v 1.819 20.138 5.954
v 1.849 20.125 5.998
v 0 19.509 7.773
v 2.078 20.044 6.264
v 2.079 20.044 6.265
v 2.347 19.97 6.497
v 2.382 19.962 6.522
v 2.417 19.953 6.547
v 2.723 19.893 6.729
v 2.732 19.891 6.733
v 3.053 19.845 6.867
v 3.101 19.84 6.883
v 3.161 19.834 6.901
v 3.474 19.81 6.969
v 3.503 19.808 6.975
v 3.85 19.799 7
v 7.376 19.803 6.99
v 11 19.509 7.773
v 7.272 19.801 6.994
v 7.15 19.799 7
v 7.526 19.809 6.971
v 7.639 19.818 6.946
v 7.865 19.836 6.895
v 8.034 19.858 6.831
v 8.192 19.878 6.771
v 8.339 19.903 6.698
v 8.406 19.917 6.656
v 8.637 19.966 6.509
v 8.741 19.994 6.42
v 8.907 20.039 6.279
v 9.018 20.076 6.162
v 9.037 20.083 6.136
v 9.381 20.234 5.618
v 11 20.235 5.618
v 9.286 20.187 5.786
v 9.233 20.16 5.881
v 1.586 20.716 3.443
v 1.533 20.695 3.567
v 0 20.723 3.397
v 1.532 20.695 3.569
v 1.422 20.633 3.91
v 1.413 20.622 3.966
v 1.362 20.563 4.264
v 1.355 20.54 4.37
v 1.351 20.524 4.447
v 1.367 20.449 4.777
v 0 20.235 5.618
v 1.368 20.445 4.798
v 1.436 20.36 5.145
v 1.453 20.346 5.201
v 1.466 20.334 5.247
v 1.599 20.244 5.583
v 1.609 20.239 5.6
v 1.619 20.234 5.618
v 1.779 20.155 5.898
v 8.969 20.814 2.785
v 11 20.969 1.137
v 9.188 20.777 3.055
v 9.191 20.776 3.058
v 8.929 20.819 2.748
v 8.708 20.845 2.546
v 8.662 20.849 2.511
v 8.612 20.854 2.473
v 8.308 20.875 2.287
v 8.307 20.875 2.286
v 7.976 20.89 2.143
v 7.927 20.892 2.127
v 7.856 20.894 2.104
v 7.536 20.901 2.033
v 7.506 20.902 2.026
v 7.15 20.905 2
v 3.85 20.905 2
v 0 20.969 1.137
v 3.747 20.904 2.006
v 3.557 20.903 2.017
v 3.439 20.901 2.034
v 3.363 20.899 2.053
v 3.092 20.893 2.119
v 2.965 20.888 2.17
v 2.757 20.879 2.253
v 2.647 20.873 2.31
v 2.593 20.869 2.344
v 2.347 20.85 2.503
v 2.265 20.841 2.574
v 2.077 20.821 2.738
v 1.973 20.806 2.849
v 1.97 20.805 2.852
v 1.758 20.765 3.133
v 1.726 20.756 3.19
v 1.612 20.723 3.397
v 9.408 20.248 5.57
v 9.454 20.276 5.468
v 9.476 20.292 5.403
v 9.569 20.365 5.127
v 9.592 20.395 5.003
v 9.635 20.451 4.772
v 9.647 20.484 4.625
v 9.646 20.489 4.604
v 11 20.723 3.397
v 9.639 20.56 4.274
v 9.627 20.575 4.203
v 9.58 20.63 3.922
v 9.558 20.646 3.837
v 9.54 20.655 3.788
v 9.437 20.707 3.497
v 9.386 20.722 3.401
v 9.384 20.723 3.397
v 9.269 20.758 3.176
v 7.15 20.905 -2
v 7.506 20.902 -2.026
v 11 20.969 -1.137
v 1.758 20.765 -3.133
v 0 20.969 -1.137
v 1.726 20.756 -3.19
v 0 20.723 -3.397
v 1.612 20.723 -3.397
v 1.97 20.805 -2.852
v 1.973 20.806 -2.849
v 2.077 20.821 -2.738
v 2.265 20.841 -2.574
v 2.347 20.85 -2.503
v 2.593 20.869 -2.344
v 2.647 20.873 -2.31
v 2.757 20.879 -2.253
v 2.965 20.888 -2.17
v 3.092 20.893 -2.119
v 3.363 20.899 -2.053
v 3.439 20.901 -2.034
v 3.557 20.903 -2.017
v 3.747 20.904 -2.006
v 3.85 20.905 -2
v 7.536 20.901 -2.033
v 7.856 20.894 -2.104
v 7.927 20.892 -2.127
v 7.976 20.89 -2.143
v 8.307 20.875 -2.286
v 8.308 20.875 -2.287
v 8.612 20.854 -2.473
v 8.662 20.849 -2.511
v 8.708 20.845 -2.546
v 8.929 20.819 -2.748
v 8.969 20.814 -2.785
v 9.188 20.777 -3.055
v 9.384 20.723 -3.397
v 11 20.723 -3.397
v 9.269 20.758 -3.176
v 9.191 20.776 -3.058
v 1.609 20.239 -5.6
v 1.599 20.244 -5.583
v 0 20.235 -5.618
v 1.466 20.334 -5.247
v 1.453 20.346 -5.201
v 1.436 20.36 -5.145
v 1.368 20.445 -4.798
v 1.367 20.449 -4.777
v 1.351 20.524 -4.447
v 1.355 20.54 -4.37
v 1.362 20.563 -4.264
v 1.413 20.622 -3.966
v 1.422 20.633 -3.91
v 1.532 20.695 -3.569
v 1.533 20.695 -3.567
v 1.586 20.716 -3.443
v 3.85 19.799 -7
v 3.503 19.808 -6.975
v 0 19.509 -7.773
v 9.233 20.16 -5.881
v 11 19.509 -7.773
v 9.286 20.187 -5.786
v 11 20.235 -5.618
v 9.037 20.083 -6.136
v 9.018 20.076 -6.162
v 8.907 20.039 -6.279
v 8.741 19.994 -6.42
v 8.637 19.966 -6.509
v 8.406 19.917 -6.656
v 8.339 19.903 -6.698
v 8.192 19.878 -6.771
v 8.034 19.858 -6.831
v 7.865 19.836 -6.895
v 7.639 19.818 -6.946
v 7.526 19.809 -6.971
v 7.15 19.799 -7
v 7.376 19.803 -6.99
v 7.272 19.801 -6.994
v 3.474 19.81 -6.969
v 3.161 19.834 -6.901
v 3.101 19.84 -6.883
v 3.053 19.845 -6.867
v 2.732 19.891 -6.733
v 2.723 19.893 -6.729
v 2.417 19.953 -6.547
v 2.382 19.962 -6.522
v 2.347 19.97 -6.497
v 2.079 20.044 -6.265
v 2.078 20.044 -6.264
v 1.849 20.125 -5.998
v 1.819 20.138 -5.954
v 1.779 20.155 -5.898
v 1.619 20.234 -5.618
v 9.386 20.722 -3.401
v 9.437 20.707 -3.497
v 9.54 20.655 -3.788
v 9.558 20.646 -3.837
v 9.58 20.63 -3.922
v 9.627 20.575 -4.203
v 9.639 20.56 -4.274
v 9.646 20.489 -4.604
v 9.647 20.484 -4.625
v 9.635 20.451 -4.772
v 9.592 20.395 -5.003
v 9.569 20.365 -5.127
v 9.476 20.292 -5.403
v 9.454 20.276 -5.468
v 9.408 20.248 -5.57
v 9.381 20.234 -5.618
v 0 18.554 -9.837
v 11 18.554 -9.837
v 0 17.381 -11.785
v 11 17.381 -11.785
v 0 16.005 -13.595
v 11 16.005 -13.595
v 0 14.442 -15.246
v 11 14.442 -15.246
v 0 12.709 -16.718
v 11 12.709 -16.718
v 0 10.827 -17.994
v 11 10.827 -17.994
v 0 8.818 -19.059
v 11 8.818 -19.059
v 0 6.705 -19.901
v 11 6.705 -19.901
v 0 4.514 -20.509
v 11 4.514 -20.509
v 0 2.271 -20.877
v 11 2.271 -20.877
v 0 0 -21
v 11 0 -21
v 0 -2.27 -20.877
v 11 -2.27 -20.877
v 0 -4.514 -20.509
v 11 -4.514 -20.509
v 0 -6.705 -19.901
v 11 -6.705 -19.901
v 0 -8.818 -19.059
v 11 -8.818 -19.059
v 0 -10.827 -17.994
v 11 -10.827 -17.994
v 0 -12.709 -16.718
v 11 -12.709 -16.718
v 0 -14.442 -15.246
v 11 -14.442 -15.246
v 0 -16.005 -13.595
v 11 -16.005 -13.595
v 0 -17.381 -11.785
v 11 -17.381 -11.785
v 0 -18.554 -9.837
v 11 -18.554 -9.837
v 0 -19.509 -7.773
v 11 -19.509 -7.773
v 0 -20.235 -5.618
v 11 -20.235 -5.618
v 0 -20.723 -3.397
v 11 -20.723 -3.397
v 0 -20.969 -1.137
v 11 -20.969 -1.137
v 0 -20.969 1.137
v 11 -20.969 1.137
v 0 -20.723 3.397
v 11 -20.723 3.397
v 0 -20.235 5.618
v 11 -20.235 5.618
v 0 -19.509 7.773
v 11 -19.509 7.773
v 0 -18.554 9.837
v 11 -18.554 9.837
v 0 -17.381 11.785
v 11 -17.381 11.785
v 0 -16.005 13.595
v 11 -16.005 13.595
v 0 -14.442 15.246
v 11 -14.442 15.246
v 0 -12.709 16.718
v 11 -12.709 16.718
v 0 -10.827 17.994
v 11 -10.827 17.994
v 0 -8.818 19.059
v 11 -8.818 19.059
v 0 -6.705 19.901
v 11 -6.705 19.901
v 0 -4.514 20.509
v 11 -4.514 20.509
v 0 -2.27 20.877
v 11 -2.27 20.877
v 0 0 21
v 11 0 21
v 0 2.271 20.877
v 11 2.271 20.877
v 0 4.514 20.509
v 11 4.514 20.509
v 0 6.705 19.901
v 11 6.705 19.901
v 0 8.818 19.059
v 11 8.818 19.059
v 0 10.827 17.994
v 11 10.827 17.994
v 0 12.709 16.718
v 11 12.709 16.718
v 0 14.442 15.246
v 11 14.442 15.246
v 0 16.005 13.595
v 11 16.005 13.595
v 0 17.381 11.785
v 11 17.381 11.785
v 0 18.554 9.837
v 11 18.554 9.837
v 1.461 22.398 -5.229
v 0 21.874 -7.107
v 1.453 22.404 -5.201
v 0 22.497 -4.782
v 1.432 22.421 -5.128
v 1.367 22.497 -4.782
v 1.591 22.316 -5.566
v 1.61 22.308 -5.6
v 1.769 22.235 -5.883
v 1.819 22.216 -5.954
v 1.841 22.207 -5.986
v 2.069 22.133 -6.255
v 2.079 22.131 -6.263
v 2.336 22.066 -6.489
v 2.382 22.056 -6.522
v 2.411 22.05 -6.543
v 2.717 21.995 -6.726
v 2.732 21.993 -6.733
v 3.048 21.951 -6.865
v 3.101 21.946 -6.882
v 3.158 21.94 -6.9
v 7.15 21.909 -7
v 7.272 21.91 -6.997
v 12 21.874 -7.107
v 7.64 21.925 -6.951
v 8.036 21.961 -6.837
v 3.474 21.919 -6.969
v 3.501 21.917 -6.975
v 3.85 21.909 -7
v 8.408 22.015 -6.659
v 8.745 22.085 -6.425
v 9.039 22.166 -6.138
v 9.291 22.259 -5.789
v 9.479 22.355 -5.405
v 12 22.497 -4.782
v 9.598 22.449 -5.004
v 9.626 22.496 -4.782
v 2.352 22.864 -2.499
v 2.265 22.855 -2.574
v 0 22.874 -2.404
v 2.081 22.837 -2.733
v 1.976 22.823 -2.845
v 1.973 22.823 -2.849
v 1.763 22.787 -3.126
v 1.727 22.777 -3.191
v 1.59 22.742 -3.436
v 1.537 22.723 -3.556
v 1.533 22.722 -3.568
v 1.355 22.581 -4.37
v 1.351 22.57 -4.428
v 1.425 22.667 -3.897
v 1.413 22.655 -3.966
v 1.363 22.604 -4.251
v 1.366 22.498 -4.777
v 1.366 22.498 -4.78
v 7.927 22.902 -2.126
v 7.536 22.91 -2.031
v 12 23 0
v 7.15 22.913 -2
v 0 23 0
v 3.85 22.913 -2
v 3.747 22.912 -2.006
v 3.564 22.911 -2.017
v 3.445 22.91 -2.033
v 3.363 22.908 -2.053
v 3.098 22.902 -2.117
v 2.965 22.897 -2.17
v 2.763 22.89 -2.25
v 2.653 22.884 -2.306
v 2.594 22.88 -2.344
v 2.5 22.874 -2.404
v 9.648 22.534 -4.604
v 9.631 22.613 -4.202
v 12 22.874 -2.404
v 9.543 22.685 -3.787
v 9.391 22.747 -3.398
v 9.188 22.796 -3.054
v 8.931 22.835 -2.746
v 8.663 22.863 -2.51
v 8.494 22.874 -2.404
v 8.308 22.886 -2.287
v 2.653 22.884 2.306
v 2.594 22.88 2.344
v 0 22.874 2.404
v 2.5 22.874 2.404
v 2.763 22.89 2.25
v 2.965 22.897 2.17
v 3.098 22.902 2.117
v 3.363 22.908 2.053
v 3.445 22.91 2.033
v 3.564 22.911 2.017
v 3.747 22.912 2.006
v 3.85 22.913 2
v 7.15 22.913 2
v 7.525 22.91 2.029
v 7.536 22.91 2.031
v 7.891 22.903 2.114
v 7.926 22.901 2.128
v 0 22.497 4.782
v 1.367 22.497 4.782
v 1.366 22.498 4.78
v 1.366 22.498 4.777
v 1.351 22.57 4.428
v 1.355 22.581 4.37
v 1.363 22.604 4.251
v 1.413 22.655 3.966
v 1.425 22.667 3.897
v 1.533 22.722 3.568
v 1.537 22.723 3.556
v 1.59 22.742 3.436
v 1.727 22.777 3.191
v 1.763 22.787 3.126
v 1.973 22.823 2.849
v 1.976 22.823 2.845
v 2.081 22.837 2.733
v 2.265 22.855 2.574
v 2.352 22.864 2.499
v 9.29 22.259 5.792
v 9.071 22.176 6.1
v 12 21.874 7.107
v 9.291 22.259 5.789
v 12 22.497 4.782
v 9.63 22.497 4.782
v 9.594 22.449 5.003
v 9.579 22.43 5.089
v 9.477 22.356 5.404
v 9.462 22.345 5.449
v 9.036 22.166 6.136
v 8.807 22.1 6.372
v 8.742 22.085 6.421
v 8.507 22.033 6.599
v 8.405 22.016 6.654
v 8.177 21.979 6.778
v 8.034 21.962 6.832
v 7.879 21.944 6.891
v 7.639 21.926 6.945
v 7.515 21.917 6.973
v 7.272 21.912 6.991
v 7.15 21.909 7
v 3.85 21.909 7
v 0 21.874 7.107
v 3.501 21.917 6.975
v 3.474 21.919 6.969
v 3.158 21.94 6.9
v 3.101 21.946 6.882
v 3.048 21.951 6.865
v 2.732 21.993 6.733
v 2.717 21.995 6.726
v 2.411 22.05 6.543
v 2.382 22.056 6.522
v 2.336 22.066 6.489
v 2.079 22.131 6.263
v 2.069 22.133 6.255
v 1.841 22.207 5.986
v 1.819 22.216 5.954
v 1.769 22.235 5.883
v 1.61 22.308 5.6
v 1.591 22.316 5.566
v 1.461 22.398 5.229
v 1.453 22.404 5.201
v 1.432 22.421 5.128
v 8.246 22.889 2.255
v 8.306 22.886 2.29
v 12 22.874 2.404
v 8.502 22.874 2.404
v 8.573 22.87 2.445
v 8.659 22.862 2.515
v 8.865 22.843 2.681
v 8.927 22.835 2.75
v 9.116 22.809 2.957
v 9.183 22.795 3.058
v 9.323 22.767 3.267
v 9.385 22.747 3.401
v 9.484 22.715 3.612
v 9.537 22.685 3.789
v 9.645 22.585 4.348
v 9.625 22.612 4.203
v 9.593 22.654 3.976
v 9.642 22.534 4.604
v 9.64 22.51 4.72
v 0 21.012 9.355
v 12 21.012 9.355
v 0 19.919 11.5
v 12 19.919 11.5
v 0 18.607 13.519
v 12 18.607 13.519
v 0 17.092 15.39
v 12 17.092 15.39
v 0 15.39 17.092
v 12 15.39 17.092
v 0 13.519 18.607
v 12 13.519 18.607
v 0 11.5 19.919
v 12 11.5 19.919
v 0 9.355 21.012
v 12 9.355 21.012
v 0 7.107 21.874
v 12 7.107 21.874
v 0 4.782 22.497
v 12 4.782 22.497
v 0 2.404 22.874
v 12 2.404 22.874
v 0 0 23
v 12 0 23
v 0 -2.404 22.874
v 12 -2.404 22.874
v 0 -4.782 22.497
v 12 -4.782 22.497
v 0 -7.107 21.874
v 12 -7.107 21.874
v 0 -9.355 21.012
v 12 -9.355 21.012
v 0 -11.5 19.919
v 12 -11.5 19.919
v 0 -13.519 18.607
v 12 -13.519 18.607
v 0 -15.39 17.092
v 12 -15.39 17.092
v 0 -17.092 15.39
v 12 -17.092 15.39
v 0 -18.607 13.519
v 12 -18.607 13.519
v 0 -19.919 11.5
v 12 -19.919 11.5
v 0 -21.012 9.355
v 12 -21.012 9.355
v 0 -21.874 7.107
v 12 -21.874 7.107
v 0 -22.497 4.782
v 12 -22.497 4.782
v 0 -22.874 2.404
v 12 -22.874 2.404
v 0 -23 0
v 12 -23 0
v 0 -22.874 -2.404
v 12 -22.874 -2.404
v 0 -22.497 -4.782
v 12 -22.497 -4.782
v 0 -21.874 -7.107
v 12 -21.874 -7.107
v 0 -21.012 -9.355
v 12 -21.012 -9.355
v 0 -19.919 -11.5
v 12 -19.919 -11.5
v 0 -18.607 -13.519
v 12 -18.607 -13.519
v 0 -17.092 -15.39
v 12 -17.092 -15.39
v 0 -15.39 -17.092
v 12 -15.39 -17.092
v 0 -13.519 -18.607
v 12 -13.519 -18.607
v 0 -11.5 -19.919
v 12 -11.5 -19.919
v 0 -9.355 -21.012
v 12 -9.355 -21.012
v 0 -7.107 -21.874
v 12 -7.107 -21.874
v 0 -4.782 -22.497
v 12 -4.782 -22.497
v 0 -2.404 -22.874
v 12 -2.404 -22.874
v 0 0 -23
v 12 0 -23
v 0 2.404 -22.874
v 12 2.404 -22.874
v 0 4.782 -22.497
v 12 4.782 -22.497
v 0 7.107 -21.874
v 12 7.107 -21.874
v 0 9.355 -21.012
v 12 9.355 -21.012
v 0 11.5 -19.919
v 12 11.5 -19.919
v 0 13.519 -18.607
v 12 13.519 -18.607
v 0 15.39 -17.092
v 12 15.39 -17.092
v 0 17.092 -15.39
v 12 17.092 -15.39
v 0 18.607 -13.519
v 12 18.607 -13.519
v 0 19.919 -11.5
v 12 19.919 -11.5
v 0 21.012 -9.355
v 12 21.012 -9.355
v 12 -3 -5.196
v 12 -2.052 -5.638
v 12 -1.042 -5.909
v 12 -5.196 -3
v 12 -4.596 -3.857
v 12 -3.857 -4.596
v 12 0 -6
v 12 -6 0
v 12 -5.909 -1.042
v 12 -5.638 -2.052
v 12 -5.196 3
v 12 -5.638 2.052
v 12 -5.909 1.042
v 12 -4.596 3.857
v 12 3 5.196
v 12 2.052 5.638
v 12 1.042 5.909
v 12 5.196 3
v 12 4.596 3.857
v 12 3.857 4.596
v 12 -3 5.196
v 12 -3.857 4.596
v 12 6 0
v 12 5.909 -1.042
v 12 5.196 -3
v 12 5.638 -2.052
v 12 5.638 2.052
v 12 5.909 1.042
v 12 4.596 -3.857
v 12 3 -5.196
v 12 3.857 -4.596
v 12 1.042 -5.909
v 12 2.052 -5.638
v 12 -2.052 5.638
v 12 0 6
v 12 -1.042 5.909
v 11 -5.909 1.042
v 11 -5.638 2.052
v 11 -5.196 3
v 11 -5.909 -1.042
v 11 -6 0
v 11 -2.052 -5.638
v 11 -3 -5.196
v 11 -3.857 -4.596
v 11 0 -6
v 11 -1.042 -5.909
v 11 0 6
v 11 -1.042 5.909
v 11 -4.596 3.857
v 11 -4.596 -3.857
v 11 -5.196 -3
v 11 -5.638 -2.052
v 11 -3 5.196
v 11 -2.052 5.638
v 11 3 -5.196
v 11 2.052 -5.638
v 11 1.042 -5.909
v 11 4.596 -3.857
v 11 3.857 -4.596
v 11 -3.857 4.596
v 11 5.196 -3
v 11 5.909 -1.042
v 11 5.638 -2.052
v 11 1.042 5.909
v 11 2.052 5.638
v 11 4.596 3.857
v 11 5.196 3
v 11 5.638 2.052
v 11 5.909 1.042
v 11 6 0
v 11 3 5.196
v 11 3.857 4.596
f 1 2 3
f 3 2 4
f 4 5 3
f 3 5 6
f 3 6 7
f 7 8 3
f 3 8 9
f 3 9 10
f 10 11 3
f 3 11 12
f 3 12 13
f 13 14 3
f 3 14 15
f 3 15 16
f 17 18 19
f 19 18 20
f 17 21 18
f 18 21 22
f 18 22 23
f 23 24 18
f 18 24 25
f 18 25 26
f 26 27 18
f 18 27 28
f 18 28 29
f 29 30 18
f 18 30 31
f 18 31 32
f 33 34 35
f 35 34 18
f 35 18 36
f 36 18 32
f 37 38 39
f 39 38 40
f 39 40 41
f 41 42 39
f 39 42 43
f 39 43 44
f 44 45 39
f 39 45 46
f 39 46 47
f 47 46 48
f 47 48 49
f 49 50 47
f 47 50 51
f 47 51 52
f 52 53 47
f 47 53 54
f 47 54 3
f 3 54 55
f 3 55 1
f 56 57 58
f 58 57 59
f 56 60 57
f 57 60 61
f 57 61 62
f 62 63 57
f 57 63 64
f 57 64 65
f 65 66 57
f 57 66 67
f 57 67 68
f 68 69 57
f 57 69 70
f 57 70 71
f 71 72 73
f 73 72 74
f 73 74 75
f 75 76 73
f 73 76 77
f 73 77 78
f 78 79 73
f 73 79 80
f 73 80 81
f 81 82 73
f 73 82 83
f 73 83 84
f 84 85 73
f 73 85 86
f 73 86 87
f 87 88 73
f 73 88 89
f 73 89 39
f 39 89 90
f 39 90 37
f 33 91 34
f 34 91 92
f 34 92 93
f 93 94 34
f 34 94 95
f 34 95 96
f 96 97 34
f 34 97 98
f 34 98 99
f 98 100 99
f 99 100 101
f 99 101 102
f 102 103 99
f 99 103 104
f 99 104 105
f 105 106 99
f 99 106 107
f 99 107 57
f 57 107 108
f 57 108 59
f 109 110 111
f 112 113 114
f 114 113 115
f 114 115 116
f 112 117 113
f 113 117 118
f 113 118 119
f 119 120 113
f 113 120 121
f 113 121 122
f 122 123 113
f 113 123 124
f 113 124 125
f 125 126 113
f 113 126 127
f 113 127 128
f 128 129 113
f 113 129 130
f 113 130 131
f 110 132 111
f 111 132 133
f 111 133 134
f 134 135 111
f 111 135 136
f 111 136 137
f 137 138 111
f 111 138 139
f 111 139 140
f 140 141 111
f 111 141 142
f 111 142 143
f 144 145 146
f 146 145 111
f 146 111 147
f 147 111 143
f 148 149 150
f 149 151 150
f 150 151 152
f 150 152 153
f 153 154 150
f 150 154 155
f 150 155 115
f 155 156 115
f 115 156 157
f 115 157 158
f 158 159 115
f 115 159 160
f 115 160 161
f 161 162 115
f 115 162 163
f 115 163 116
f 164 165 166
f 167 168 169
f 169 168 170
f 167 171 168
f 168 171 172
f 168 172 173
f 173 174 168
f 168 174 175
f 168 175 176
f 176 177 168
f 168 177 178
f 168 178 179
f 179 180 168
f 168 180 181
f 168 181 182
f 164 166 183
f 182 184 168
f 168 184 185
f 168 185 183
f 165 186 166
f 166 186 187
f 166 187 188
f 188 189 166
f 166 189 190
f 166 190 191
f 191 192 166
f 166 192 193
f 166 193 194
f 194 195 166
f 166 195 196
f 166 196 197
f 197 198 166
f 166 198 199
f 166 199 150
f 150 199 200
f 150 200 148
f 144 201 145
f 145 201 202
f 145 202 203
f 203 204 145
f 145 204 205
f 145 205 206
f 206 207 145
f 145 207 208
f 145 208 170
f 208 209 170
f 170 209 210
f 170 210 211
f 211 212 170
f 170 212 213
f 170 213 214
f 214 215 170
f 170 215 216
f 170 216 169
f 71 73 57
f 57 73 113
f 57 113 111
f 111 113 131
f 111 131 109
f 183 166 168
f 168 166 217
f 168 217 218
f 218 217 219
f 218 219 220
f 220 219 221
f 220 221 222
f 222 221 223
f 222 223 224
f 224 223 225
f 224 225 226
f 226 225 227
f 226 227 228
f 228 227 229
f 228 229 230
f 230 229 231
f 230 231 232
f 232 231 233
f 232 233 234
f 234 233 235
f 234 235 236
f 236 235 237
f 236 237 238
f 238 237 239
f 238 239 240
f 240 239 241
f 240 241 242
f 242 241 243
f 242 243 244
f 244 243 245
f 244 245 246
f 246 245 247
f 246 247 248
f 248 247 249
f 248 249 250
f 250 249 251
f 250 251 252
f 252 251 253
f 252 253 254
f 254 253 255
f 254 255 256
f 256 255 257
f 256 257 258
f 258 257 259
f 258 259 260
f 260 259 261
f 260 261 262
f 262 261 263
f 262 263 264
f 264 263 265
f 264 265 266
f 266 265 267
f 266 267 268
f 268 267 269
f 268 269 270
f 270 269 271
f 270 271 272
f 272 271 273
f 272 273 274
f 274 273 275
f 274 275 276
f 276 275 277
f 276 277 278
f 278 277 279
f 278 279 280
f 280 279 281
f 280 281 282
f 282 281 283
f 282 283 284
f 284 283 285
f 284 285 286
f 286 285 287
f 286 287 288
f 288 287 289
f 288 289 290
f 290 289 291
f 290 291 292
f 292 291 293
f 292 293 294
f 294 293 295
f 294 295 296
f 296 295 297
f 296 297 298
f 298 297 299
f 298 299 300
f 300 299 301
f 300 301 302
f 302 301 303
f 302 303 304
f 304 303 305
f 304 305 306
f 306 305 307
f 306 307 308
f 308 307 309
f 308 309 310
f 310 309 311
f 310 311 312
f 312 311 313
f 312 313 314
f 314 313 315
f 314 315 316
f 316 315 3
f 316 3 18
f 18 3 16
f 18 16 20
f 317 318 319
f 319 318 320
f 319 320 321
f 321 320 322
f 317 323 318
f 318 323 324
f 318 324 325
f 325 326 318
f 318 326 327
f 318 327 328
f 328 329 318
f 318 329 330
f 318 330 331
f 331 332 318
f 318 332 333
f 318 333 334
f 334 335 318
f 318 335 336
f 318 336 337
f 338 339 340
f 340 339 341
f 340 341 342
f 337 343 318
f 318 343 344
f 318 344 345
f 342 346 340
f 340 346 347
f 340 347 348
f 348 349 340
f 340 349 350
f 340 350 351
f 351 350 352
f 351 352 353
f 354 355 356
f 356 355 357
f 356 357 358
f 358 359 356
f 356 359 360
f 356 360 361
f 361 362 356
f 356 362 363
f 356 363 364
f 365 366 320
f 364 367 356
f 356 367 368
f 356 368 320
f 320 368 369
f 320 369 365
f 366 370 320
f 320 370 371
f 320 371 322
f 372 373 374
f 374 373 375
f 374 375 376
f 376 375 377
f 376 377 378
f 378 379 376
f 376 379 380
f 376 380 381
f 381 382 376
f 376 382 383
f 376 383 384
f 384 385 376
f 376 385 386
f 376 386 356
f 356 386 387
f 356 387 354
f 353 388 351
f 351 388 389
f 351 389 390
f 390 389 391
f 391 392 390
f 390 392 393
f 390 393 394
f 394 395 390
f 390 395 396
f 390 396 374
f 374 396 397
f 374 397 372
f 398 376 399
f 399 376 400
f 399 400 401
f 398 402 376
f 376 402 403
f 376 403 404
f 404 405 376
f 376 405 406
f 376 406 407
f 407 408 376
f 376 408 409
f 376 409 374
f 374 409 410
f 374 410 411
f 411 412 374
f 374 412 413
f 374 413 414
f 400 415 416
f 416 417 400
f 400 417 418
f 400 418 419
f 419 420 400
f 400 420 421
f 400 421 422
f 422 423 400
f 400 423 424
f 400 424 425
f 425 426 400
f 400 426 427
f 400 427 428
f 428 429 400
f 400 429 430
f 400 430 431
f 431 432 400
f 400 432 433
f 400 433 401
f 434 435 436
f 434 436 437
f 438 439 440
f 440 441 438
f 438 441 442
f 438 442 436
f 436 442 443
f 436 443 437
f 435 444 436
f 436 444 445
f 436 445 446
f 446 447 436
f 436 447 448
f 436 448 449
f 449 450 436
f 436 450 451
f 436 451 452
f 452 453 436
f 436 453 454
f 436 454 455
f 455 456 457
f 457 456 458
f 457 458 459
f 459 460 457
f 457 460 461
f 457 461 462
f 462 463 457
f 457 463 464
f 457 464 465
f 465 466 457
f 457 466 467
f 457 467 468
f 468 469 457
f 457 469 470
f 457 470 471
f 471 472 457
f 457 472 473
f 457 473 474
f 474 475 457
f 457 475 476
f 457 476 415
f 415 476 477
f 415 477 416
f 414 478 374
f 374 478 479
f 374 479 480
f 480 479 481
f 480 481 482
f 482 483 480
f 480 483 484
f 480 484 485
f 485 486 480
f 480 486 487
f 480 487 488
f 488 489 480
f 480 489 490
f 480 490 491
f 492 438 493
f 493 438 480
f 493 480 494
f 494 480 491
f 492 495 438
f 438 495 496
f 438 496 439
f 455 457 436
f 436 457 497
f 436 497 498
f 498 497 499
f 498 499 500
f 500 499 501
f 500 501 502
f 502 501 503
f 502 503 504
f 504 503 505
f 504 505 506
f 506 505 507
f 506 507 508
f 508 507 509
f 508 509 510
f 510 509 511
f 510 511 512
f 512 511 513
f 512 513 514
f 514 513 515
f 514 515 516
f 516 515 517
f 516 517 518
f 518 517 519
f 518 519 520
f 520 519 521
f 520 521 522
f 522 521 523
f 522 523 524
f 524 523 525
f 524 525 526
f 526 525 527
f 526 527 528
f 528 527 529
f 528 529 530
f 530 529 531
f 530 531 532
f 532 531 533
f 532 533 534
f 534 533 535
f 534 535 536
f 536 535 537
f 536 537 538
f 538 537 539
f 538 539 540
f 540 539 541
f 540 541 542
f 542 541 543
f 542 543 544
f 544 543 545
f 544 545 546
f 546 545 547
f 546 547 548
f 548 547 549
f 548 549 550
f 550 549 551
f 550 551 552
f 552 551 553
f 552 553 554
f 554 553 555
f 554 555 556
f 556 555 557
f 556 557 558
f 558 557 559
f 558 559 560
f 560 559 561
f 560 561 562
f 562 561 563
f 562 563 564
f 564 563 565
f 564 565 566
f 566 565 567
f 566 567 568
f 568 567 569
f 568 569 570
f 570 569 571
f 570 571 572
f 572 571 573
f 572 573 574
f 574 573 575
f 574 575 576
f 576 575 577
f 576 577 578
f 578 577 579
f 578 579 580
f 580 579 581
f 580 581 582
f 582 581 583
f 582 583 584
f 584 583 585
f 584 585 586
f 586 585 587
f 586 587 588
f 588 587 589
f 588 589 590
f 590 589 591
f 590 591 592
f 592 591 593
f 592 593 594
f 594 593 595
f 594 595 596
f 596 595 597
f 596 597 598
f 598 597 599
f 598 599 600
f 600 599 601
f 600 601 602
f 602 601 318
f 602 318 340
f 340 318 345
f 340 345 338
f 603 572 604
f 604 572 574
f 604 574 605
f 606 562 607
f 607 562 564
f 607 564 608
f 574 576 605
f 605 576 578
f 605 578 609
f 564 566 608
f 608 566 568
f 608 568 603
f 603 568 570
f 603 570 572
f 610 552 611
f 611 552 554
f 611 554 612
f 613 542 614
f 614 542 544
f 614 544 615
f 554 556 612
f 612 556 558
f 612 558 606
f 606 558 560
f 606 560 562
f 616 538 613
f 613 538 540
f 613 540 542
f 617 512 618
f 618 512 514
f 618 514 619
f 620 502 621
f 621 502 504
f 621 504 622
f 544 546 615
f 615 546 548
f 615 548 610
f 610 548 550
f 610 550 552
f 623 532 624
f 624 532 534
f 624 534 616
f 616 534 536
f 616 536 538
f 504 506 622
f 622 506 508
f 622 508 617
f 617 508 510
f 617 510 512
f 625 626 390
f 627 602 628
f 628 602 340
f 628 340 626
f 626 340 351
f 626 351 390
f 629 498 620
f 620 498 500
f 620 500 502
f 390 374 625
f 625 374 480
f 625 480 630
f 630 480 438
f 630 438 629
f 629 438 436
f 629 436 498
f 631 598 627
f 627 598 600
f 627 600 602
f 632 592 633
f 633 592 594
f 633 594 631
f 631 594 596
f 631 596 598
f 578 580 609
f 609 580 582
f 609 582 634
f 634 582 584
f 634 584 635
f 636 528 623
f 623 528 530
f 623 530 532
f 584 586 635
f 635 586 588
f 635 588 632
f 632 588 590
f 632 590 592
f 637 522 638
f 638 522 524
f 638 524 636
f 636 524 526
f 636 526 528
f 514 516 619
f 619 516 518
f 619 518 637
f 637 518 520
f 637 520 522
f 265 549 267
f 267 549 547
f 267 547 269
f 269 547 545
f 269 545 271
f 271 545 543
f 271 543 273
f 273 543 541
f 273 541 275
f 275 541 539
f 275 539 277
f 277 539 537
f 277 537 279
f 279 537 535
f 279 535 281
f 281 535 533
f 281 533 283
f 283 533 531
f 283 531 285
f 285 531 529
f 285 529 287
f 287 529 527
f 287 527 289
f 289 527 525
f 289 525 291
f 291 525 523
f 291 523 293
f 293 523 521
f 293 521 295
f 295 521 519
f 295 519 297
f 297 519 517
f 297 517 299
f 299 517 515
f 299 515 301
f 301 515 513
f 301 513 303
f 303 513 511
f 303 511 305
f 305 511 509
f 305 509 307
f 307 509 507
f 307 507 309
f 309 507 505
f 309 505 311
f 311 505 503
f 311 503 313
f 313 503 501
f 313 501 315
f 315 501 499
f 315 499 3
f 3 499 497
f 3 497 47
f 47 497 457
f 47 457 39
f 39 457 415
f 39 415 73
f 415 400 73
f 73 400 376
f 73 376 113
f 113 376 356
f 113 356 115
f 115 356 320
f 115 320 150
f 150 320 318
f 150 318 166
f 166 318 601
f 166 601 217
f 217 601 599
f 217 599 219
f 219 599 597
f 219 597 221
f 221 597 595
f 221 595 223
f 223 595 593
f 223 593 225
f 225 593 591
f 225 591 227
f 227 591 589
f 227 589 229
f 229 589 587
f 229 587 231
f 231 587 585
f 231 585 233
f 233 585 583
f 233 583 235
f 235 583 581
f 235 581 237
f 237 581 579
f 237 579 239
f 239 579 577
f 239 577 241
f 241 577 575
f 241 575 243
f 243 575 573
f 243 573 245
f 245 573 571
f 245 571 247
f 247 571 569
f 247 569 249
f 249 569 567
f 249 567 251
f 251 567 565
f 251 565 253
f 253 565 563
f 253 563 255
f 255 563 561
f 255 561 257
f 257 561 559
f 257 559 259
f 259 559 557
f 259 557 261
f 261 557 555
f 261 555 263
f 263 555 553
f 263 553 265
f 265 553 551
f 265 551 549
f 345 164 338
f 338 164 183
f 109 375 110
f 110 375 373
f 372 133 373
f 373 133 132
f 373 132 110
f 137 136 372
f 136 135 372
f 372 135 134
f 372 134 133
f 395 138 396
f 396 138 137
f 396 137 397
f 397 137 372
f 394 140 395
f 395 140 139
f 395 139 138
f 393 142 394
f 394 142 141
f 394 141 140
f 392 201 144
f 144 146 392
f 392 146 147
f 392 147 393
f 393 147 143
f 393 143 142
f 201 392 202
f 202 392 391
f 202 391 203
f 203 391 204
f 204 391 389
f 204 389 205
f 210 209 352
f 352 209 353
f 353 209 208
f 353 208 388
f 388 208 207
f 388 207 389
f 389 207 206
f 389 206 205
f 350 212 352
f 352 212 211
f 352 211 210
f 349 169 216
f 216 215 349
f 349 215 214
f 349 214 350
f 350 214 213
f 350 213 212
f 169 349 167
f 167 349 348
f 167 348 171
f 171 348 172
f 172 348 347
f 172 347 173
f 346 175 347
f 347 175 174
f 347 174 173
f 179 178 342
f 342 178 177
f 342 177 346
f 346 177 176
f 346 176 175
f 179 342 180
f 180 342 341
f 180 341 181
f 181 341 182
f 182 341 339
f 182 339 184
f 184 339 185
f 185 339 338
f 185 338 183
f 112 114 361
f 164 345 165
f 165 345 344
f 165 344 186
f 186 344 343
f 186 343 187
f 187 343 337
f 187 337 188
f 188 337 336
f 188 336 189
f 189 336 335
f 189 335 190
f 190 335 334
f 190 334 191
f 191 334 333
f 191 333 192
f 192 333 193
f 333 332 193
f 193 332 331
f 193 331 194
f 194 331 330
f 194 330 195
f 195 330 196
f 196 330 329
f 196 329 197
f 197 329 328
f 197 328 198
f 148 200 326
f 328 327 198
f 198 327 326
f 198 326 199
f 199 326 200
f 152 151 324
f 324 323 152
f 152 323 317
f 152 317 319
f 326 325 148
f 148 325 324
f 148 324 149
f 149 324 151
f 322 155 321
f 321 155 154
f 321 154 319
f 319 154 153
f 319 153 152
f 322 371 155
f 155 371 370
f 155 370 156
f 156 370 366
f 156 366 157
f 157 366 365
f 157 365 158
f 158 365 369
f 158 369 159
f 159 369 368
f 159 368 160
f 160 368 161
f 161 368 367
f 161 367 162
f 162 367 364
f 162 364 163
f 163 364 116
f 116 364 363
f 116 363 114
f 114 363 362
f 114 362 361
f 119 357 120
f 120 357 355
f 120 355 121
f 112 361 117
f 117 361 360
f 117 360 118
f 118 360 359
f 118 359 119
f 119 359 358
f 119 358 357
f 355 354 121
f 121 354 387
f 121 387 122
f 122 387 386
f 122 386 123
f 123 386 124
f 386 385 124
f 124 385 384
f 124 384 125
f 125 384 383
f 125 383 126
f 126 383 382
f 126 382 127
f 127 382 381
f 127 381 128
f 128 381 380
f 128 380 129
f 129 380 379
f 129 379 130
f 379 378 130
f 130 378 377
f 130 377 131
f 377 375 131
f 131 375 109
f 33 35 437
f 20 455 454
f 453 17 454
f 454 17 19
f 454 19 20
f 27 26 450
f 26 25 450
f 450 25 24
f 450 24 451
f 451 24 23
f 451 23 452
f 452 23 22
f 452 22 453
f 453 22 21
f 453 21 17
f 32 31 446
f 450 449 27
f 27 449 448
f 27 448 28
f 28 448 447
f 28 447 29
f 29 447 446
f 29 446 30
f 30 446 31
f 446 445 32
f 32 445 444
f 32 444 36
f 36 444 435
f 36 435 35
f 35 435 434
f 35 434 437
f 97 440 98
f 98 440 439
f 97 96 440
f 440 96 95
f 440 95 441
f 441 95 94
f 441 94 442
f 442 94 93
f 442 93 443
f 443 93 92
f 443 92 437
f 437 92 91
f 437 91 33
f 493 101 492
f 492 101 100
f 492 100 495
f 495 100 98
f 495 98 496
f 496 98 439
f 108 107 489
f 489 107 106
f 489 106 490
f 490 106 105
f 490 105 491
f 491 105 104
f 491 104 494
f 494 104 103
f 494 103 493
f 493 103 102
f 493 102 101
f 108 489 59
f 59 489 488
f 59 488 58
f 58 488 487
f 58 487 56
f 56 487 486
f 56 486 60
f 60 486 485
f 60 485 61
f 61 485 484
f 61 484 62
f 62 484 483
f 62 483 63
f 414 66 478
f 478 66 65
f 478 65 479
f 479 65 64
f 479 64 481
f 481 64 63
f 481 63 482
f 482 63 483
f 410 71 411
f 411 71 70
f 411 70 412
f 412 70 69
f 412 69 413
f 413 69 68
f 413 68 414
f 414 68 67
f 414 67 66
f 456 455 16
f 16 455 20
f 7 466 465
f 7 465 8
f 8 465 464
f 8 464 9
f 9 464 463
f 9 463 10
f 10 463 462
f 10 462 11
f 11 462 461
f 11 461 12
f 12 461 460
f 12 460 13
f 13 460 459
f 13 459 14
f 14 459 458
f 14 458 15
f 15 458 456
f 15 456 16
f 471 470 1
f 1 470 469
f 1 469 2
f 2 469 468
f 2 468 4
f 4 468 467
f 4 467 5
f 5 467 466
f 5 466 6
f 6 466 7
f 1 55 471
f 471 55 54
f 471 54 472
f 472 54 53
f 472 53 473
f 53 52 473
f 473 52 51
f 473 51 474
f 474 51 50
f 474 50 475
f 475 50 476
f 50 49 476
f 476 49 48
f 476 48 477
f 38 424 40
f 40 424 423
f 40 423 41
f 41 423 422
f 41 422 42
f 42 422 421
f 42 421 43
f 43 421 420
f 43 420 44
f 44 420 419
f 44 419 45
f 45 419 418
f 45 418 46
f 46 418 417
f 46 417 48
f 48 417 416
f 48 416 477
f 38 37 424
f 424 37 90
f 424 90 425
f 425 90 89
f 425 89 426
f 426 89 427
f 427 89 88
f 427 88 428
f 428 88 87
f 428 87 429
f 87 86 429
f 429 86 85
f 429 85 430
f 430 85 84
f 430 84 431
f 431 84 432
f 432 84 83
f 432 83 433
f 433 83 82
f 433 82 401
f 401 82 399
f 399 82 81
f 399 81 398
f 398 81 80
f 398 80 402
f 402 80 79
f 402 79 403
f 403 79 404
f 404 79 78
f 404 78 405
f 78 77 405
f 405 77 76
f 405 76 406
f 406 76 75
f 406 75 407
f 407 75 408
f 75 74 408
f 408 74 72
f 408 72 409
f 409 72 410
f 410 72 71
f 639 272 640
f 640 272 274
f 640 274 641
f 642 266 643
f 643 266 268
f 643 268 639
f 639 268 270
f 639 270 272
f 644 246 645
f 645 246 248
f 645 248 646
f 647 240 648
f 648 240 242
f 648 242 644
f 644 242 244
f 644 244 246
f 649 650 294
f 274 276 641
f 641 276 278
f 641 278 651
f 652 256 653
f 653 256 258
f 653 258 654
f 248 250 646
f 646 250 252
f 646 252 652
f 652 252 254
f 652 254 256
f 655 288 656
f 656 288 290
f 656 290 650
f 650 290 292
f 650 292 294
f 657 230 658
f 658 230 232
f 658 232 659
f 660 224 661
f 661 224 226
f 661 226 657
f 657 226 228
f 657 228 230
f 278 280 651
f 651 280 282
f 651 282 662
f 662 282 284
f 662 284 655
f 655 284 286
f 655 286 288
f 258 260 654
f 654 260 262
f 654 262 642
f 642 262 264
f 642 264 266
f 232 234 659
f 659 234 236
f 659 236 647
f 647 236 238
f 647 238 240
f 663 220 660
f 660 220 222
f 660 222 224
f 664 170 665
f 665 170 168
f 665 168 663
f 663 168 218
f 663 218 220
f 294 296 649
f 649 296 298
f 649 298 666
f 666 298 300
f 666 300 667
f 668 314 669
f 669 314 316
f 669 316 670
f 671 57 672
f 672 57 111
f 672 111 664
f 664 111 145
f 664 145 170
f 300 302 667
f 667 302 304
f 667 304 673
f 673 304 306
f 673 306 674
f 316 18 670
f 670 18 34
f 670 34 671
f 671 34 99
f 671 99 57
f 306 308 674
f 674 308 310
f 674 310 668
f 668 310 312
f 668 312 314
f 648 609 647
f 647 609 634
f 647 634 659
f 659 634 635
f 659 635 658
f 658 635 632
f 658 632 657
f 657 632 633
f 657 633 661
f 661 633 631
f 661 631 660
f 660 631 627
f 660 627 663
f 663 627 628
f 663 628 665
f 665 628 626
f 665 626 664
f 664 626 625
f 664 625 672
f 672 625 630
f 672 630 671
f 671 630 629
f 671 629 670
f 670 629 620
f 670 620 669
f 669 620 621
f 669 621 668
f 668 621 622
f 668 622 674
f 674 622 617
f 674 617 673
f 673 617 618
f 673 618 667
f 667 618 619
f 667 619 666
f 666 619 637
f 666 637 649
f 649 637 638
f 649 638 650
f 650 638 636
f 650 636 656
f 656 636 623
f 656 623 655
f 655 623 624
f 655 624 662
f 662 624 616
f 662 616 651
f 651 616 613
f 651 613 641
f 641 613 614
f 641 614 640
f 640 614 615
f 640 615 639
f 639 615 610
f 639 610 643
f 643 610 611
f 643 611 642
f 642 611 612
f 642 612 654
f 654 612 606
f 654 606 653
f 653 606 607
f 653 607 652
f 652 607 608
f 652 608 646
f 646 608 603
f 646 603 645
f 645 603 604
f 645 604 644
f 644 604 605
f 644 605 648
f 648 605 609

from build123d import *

# Parameters (mm, degrees)
SKETCH1_R           = 23
SKETCH1_R_2         = 21
BOSS_EXTRUDE1_DEPTH = 12
CUT_EXTRUDE1_START  = 19.798989767
CUT_EXTRUDE1_DEPTH  = 3.113888708
BOSS_EXTRUDE2_START = -1
SKETCH3_R           = 21
SKETCH3_R_2         = 6
BOSS_EXTRUDE2_DEPTH = 1


# Read off the part's stored shape, not the designer's step: Cut-Extrude1
with BuildPart() as part:
    # Sketch1 → Boss-Extrude1 (new body)
    with BuildSketch(Plane(origin=(0, 0, 0), x_dir=(0, 0, -1), z_dir=(1, 0, 0))):
        Circle(SKETCH1_R)
        Circle(SKETCH1_R_2, mode=Mode.SUBTRACT)
    extrude(amount=BOSS_EXTRUDE1_DEPTH)

    # Cut-Extrude1 outline → Cut-Extrude1 (cut)
    with BuildSketch(Plane(origin=(0, 0, 0), x_dir=(1, 0, 0), z_dir=(0, 1, 0)).offset(CUT_EXTRUDE1_START)):
        with BuildLine():
            Line((3.85, 2), (7.15, 2))
            add(Edge.make_bspline(
                [(7.15, 2), (7.817845854, 2), (8.470708827, 2.278069652), (9.392173726, 3.213958296), (9.654566139, 3.870579279), (9.645305955, 5.165184319), (9.383600306, 5.79959696), (8.460809694, 6.727038511), (7.818179406, 7), (7.15, 7)],
                knots=[0, 0, 0, 0, 0.25, 0.25, 0.5, 0.5, 0.75, 0.75, 1, 1, 1, 1], degree=3))
            Line((7.15, 7), (3.85, 7))
            add(Edge.make_bspline(
                [(3.85, 7), (3.181977083, 7), (2.533951966, 6.72160004), (1.622306662, 5.805707302), (1.355260445, 5.166655745), (1.344899993, 3.873398622), (1.601104231, 3.221423625), (2.533655688, 2.273000364), (3.182229779, 2), (3.85, 2)],
                knots=[0, 0, 0, 0, 0.25, 0.25, 0.5, 0.5, 0.75, 0.75, 1, 1, 1, 1], degree=3))
        make_face()
        with BuildLine():
            add(Edge.make_bspline(
                [(7.15, -2), (7.817845854, -2), (8.470708827, -2.278069652), (9.392173726, -3.213958296), (9.654566139, -3.870579279), (9.645305955, -5.165184319), (9.383600306, -5.79959696), (8.460809694, -6.727038511), (7.818179406, -7), (7.15, -7)],
                knots=[0, 0, 0, 0, 0.25, 0.25, 0.5, 0.5, 0.75, 0.75, 1, 1, 1, 1], degree=3))
            Line((7.15, -2), (3.85, -2))
            add(Edge.make_bspline(
                [(3.85, -7), (3.181977083, -7), (2.533951966, -6.72160004), (1.622306662, -5.805707302), (1.355260445, -5.166655745), (1.344899993, -3.873398622), (1.601104231, -3.221423625), (2.533655688, -2.273000364), (3.182229779, -2), (3.85, -2)],
                knots=[0, 0, 0, 0, 0.25, 0.25, 0.5, 0.5, 0.75, 0.75, 1, 1, 1, 1], degree=3))
            Line((3.85, -7), (7.15, -7))
        make_face()
    extrude(amount=CUT_EXTRUDE1_DEPTH, mode=Mode.SUBTRACT)

    # Sketch3 → Boss-Extrude2 (add)
    with BuildSketch(Plane(origin=(12, 0, 0), x_dir=(0, 0, -1), z_dir=(1, 0, 0)).offset(BOSS_EXTRUDE2_START)):
        Circle(SKETCH3_R)
        Circle(SKETCH3_R_2, mode=Mode.SUBTRACT)
    extrude(amount=BOSS_EXTRUDE2_DEPTH)


solid = part.part
